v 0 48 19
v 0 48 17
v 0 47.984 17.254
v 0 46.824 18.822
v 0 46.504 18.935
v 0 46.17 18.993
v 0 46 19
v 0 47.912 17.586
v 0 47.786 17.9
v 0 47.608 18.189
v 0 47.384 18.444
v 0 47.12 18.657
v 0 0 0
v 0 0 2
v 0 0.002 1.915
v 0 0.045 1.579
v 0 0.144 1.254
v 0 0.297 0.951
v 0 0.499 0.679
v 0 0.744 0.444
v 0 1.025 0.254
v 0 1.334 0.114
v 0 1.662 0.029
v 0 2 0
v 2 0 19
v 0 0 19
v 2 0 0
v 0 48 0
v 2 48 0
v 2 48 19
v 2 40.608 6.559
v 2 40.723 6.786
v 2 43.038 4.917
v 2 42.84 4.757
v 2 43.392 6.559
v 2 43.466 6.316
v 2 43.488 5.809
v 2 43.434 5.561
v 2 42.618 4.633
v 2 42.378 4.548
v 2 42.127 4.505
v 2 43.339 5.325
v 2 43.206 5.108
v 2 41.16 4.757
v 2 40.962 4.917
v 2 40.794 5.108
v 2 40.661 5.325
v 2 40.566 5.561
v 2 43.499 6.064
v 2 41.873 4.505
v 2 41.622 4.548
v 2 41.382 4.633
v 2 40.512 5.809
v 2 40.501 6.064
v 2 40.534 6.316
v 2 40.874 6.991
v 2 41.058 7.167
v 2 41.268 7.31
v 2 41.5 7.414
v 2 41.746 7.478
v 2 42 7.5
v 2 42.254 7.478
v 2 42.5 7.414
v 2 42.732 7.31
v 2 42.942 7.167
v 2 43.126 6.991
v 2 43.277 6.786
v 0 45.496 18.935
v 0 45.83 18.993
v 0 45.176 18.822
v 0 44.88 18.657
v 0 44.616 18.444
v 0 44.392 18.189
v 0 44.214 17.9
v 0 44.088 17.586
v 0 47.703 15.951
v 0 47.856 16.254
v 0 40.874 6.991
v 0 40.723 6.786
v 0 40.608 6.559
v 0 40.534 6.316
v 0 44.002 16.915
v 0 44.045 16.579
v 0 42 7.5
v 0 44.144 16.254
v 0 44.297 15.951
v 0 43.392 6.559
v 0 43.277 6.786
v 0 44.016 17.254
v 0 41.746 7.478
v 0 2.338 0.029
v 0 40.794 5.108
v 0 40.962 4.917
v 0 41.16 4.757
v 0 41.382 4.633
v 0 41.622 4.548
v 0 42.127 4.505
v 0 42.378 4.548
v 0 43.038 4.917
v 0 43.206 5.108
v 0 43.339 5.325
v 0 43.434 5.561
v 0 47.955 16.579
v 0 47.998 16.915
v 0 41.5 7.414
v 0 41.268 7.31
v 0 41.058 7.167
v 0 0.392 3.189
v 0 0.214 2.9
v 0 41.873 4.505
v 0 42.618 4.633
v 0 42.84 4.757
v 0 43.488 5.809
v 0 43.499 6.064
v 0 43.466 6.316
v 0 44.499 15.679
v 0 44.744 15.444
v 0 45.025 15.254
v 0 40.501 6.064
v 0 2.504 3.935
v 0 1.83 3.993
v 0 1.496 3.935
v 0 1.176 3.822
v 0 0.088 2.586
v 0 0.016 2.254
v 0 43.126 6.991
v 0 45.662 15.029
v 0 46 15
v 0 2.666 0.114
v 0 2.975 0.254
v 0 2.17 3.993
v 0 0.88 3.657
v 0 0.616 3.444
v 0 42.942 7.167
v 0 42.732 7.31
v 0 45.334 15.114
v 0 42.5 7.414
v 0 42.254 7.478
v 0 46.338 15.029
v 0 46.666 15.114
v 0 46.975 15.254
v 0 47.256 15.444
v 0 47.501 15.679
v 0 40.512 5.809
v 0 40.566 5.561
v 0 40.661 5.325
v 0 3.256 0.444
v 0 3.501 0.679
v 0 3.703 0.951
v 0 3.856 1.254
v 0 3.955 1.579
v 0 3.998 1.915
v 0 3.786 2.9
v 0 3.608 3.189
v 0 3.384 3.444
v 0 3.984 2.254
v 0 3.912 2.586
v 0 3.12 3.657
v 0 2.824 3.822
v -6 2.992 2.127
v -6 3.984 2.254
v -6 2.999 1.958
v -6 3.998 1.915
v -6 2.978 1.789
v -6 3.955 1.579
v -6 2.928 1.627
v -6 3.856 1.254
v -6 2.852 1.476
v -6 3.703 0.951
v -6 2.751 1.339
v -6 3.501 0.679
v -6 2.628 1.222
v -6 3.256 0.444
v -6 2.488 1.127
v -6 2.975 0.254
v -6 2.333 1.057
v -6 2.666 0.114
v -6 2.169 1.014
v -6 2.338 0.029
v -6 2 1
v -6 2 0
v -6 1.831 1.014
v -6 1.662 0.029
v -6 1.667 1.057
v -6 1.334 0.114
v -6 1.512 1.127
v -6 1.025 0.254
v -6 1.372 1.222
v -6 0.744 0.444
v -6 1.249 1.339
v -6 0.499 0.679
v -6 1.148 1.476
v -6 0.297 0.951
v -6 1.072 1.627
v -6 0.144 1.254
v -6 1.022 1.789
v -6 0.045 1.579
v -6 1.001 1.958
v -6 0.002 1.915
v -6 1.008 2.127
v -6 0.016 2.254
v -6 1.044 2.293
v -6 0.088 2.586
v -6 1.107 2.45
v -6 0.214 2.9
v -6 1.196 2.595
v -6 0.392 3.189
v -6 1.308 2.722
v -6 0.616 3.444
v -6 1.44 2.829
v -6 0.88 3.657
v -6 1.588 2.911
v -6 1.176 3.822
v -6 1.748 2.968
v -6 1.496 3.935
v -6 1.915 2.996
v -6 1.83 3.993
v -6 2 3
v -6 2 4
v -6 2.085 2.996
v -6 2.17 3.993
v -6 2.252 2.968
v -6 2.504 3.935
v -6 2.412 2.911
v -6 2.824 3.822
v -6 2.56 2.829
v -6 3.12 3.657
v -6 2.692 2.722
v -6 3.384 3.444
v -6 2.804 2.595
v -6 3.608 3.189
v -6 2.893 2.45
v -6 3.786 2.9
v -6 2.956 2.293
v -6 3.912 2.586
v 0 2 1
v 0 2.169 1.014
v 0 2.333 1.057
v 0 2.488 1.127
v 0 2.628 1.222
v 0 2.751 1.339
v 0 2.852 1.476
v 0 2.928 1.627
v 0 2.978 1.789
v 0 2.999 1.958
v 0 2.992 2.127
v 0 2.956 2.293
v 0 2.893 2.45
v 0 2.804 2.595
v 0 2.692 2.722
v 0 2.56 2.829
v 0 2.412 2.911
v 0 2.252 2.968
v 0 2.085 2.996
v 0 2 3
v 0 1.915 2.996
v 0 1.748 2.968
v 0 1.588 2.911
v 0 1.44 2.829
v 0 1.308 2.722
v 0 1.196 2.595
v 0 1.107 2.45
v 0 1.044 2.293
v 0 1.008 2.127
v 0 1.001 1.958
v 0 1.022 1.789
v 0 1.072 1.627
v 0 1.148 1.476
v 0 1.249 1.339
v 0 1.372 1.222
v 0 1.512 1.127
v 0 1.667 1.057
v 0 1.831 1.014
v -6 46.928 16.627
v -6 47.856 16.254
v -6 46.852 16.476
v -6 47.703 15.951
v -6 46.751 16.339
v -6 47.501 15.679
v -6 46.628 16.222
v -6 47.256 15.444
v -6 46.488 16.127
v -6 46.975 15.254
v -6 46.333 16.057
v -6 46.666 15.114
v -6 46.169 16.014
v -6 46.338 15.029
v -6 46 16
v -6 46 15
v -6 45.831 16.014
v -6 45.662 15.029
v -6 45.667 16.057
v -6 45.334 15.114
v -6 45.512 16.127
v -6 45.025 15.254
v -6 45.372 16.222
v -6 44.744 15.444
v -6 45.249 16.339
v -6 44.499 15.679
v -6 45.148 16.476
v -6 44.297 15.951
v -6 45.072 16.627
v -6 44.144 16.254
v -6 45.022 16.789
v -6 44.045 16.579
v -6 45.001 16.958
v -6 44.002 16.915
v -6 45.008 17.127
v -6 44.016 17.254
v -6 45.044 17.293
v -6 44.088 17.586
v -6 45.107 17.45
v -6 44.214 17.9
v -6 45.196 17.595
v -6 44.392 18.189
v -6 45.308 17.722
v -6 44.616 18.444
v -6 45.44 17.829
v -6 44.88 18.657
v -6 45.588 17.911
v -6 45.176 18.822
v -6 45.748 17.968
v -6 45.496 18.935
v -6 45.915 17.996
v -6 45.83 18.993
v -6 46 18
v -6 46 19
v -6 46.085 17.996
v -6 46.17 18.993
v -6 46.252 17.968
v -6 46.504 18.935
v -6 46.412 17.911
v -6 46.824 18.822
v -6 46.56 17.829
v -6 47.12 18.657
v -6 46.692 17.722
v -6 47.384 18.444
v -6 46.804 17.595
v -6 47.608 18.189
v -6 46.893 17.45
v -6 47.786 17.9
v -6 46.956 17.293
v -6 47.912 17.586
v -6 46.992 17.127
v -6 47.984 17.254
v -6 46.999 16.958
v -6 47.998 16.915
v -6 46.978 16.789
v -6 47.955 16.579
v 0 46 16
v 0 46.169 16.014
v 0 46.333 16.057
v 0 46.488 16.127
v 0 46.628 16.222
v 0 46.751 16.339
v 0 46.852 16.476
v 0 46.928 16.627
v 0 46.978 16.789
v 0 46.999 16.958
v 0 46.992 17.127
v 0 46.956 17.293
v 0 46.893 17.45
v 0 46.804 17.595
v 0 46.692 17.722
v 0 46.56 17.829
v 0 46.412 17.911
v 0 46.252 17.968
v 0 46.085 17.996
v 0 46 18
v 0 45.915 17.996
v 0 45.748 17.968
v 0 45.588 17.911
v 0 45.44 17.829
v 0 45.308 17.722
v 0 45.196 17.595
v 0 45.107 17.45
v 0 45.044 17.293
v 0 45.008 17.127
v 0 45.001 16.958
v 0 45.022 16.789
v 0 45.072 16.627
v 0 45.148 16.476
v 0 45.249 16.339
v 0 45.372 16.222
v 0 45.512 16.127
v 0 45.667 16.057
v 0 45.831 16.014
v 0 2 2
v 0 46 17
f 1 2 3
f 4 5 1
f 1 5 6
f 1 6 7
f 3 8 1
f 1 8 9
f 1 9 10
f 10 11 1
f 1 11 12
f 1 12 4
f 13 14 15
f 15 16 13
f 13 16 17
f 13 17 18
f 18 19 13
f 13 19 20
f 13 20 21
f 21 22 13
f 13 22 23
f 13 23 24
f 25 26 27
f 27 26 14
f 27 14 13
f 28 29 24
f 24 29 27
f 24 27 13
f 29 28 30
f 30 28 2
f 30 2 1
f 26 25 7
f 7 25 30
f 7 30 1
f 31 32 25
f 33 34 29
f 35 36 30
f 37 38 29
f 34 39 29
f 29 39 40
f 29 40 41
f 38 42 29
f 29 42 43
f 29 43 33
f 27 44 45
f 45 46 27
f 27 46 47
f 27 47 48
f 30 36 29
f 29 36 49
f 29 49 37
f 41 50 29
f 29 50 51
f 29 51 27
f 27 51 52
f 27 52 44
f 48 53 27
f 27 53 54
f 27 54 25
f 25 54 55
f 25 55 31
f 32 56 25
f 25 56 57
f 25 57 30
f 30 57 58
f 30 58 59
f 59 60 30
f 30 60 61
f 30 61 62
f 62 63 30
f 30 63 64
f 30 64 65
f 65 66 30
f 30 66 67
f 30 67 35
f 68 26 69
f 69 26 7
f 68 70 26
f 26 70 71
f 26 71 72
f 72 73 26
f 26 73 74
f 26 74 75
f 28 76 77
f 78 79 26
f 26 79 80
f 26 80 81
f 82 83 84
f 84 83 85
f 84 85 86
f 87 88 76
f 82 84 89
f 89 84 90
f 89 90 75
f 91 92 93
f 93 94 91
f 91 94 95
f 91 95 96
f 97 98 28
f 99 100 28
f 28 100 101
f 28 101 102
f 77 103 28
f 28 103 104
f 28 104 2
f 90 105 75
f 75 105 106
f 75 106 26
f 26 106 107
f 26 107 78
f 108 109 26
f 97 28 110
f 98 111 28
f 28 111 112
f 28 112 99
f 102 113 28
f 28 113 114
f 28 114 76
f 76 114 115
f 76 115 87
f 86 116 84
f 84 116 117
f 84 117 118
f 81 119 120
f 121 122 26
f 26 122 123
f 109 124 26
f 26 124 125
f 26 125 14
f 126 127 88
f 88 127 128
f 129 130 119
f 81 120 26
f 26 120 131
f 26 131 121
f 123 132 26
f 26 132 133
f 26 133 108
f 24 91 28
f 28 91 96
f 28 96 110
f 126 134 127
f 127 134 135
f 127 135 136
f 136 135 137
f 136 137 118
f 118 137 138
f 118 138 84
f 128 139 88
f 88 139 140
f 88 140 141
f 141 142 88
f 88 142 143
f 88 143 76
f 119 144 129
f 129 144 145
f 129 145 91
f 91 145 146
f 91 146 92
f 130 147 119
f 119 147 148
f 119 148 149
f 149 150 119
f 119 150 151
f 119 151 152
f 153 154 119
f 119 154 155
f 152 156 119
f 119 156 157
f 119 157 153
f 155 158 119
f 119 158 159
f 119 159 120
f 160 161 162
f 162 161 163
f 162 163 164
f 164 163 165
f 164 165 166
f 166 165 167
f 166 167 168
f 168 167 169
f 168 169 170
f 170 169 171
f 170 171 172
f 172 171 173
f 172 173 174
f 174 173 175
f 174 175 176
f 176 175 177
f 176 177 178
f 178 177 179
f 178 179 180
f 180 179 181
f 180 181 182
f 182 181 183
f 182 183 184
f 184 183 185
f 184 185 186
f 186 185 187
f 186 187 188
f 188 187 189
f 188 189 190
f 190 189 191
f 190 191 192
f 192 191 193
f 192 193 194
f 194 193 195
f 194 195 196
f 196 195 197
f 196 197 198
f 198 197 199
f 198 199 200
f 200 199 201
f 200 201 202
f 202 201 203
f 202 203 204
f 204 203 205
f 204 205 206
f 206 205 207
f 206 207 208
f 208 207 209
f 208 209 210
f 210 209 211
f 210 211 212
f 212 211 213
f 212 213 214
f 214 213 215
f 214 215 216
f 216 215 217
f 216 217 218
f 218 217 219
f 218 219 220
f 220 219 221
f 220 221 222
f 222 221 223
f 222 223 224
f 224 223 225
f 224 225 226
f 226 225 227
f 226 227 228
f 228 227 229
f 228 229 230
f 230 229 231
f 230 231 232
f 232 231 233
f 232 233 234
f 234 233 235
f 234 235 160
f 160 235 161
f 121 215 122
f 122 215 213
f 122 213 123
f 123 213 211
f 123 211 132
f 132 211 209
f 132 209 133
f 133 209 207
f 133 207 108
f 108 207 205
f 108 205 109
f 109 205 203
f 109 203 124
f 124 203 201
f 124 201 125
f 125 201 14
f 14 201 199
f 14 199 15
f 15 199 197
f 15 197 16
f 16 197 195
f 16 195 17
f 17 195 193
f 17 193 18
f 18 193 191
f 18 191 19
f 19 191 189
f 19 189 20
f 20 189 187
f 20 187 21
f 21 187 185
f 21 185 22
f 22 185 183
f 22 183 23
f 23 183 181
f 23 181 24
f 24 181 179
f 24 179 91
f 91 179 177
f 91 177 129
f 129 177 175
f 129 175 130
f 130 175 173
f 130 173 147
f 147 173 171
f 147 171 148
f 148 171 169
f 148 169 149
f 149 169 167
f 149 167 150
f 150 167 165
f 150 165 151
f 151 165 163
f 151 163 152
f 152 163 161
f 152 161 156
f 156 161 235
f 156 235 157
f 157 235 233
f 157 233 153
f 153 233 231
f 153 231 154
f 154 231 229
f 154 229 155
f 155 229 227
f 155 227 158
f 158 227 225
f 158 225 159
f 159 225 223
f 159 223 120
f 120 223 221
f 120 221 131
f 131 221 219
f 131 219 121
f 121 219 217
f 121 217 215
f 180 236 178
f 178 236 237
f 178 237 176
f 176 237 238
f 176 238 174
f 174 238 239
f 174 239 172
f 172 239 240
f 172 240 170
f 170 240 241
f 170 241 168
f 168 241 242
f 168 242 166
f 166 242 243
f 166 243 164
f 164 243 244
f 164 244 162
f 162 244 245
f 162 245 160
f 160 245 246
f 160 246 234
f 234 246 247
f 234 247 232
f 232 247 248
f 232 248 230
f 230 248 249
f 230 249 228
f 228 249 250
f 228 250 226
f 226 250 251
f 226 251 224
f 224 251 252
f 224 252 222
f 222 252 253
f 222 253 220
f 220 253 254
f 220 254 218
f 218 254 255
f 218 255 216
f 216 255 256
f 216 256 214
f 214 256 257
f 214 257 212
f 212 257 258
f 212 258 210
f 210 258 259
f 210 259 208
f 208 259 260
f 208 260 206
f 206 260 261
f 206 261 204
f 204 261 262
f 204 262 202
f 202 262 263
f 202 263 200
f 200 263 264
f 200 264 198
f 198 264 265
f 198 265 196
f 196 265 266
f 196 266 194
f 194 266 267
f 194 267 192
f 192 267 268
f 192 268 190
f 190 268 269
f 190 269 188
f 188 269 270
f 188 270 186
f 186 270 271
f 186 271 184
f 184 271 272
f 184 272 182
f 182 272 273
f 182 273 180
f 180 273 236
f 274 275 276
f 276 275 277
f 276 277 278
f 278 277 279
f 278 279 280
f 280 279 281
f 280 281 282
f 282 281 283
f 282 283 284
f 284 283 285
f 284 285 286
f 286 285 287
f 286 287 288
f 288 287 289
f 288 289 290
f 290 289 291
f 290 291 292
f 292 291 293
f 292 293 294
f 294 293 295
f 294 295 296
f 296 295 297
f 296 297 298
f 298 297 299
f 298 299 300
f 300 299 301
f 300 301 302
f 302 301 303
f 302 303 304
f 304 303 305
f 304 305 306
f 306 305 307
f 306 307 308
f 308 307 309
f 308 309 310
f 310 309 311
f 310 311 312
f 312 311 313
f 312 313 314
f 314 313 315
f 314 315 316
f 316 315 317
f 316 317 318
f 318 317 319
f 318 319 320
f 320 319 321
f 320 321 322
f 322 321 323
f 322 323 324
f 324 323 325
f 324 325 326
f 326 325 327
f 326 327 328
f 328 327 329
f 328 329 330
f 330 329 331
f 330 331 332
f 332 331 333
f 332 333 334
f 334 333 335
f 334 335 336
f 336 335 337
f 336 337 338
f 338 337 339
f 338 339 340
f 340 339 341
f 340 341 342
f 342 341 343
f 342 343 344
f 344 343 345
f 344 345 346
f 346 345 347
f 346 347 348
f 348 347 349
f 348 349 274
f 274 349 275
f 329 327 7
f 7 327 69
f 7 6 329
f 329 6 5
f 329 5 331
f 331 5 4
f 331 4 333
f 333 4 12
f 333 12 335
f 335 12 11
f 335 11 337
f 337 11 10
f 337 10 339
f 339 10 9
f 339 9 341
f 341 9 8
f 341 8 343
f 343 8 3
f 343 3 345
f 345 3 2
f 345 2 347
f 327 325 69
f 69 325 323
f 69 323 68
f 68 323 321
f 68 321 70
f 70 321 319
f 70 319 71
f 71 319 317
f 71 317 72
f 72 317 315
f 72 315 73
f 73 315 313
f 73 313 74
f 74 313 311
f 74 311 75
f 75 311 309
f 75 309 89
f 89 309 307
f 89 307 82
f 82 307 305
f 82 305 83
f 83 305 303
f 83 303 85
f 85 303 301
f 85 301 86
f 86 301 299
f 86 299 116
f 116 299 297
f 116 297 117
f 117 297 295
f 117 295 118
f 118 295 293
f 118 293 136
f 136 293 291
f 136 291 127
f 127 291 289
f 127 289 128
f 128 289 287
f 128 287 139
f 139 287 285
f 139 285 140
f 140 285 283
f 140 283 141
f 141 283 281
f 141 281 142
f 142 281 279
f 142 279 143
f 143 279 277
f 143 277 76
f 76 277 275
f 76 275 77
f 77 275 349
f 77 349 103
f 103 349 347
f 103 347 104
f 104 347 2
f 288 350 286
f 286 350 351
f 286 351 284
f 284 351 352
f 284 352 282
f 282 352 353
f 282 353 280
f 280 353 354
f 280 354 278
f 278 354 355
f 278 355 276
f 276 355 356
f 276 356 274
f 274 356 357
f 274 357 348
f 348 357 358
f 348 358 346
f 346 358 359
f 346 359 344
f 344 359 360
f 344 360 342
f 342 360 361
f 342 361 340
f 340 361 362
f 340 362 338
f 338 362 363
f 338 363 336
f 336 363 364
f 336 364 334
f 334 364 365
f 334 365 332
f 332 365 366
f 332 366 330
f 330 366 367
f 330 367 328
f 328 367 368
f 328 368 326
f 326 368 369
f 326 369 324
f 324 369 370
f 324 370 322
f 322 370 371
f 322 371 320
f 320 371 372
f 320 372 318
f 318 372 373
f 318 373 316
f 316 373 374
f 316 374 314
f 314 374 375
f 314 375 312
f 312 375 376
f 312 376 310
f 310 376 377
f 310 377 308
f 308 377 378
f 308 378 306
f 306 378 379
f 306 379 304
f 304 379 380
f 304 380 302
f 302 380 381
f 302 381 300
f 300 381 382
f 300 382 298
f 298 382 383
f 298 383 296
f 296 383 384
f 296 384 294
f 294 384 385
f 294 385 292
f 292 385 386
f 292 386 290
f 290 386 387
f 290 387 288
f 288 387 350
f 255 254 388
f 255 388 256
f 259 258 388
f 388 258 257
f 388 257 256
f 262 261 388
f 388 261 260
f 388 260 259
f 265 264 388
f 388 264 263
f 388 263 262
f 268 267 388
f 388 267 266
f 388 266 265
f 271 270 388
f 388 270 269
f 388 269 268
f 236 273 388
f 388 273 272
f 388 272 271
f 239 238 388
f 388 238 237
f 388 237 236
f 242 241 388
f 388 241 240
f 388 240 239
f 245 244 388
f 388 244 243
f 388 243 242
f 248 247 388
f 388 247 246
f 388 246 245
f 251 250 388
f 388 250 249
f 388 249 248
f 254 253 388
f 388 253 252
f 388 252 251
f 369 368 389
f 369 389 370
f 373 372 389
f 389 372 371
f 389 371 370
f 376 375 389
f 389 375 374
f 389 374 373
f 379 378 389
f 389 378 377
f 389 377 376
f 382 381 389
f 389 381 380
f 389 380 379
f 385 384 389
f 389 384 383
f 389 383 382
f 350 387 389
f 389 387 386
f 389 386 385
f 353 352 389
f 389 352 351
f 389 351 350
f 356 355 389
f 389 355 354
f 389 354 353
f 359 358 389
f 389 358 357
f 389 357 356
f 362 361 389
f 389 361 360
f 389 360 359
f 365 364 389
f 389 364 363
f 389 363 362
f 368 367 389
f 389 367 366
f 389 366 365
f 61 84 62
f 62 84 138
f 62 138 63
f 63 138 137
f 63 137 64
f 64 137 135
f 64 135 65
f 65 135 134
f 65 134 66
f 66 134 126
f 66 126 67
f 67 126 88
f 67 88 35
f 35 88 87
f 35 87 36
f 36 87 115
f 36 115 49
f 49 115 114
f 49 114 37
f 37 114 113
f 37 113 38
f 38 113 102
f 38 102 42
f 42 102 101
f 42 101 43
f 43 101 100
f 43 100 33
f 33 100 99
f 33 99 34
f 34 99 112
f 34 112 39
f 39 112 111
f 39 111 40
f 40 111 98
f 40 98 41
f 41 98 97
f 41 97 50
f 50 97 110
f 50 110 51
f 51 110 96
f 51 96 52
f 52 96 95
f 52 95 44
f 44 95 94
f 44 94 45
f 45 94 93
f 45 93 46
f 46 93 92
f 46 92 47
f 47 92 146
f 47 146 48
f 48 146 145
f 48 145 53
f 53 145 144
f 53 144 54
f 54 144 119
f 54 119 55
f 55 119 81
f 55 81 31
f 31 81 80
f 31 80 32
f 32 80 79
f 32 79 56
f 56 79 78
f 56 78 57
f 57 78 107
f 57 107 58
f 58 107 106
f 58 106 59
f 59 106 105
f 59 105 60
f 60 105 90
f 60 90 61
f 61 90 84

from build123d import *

# Parameters (mm, degrees)
SKETCH1_W           = 48
SKETCH1_H           = 19
BOSS_EXTRUDE1_DEPTH = 2
SKETCH2_R           = 2
SKETCH2_R_2         = 1
BOSS_EXTRUDE2_DEPTH = 6
CUT_EXTRUDE1_REACH  = 53.971
SKETCH3_R           = 1.5


with BuildPart() as part:
    # Sketch1 → Boss-Extrude1 (new body)
    with BuildSketch(Plane.YZ):
        with Locations((24, 9.5)):
            Rectangle(SKETCH1_W, SKETCH1_H)
    extrude(amount=BOSS_EXTRUDE1_DEPTH)

    # Sketch2 → Boss-Extrude2 (add)
    # profile 1 of 2: a face of its own
    with BuildSketch(Plane(origin=(0, 0, 0), x_dir=(0, -1, 0), z_dir=(-1, 0, 0))):
        with Locations(Location((-46, 17, 0), (0, 0, 90))):
            Circle(SKETCH2_R)
        with Locations(Location((-46, 17, 0), (0, 0, 90))):
            Circle(SKETCH2_R_2, mode=Mode.SUBTRACT)
    # profile 2 of 2: a face of its own
    with BuildSketch(Plane(origin=(0, 0, 0), x_dir=(0, -1, 0), z_dir=(-1, 0, 0))):
        with Locations(Location((-2, 2, 0), (0, 0, 270))):
            Circle(SKETCH2_R)
        with Locations(Location((-2, 2, 0), (0, 0, 90))):
            Circle(SKETCH2_R_2, mode=Mode.SUBTRACT)
    extrude(amount=BOSS_EXTRUDE2_DEPTH)

    # Sketch3 → Cut-Extrude1 (cut, up to next)
    with BuildSketch(Plane(origin=(0, 0, 0), x_dir=(0, -1, 0), z_dir=(-1, 0, 0)), mode=Mode.PRIVATE) as cut_extrude1_sk1:
        with Locations(Location((-42, 6, 0), (0, 0, 90))):
            Circle(SKETCH3_R)
    cut_extrude1_tool1 = extrude(cut_extrude1_sk1.sketch, amount=-CUT_EXTRUDE1_REACH, mode=Mode.PRIVATE) & part.part
    add(cut_extrude1_tool1.solids().sort_by_distance((0, 42, 6))[0], mode=Mode.SUBTRACT)


solid = part.part
